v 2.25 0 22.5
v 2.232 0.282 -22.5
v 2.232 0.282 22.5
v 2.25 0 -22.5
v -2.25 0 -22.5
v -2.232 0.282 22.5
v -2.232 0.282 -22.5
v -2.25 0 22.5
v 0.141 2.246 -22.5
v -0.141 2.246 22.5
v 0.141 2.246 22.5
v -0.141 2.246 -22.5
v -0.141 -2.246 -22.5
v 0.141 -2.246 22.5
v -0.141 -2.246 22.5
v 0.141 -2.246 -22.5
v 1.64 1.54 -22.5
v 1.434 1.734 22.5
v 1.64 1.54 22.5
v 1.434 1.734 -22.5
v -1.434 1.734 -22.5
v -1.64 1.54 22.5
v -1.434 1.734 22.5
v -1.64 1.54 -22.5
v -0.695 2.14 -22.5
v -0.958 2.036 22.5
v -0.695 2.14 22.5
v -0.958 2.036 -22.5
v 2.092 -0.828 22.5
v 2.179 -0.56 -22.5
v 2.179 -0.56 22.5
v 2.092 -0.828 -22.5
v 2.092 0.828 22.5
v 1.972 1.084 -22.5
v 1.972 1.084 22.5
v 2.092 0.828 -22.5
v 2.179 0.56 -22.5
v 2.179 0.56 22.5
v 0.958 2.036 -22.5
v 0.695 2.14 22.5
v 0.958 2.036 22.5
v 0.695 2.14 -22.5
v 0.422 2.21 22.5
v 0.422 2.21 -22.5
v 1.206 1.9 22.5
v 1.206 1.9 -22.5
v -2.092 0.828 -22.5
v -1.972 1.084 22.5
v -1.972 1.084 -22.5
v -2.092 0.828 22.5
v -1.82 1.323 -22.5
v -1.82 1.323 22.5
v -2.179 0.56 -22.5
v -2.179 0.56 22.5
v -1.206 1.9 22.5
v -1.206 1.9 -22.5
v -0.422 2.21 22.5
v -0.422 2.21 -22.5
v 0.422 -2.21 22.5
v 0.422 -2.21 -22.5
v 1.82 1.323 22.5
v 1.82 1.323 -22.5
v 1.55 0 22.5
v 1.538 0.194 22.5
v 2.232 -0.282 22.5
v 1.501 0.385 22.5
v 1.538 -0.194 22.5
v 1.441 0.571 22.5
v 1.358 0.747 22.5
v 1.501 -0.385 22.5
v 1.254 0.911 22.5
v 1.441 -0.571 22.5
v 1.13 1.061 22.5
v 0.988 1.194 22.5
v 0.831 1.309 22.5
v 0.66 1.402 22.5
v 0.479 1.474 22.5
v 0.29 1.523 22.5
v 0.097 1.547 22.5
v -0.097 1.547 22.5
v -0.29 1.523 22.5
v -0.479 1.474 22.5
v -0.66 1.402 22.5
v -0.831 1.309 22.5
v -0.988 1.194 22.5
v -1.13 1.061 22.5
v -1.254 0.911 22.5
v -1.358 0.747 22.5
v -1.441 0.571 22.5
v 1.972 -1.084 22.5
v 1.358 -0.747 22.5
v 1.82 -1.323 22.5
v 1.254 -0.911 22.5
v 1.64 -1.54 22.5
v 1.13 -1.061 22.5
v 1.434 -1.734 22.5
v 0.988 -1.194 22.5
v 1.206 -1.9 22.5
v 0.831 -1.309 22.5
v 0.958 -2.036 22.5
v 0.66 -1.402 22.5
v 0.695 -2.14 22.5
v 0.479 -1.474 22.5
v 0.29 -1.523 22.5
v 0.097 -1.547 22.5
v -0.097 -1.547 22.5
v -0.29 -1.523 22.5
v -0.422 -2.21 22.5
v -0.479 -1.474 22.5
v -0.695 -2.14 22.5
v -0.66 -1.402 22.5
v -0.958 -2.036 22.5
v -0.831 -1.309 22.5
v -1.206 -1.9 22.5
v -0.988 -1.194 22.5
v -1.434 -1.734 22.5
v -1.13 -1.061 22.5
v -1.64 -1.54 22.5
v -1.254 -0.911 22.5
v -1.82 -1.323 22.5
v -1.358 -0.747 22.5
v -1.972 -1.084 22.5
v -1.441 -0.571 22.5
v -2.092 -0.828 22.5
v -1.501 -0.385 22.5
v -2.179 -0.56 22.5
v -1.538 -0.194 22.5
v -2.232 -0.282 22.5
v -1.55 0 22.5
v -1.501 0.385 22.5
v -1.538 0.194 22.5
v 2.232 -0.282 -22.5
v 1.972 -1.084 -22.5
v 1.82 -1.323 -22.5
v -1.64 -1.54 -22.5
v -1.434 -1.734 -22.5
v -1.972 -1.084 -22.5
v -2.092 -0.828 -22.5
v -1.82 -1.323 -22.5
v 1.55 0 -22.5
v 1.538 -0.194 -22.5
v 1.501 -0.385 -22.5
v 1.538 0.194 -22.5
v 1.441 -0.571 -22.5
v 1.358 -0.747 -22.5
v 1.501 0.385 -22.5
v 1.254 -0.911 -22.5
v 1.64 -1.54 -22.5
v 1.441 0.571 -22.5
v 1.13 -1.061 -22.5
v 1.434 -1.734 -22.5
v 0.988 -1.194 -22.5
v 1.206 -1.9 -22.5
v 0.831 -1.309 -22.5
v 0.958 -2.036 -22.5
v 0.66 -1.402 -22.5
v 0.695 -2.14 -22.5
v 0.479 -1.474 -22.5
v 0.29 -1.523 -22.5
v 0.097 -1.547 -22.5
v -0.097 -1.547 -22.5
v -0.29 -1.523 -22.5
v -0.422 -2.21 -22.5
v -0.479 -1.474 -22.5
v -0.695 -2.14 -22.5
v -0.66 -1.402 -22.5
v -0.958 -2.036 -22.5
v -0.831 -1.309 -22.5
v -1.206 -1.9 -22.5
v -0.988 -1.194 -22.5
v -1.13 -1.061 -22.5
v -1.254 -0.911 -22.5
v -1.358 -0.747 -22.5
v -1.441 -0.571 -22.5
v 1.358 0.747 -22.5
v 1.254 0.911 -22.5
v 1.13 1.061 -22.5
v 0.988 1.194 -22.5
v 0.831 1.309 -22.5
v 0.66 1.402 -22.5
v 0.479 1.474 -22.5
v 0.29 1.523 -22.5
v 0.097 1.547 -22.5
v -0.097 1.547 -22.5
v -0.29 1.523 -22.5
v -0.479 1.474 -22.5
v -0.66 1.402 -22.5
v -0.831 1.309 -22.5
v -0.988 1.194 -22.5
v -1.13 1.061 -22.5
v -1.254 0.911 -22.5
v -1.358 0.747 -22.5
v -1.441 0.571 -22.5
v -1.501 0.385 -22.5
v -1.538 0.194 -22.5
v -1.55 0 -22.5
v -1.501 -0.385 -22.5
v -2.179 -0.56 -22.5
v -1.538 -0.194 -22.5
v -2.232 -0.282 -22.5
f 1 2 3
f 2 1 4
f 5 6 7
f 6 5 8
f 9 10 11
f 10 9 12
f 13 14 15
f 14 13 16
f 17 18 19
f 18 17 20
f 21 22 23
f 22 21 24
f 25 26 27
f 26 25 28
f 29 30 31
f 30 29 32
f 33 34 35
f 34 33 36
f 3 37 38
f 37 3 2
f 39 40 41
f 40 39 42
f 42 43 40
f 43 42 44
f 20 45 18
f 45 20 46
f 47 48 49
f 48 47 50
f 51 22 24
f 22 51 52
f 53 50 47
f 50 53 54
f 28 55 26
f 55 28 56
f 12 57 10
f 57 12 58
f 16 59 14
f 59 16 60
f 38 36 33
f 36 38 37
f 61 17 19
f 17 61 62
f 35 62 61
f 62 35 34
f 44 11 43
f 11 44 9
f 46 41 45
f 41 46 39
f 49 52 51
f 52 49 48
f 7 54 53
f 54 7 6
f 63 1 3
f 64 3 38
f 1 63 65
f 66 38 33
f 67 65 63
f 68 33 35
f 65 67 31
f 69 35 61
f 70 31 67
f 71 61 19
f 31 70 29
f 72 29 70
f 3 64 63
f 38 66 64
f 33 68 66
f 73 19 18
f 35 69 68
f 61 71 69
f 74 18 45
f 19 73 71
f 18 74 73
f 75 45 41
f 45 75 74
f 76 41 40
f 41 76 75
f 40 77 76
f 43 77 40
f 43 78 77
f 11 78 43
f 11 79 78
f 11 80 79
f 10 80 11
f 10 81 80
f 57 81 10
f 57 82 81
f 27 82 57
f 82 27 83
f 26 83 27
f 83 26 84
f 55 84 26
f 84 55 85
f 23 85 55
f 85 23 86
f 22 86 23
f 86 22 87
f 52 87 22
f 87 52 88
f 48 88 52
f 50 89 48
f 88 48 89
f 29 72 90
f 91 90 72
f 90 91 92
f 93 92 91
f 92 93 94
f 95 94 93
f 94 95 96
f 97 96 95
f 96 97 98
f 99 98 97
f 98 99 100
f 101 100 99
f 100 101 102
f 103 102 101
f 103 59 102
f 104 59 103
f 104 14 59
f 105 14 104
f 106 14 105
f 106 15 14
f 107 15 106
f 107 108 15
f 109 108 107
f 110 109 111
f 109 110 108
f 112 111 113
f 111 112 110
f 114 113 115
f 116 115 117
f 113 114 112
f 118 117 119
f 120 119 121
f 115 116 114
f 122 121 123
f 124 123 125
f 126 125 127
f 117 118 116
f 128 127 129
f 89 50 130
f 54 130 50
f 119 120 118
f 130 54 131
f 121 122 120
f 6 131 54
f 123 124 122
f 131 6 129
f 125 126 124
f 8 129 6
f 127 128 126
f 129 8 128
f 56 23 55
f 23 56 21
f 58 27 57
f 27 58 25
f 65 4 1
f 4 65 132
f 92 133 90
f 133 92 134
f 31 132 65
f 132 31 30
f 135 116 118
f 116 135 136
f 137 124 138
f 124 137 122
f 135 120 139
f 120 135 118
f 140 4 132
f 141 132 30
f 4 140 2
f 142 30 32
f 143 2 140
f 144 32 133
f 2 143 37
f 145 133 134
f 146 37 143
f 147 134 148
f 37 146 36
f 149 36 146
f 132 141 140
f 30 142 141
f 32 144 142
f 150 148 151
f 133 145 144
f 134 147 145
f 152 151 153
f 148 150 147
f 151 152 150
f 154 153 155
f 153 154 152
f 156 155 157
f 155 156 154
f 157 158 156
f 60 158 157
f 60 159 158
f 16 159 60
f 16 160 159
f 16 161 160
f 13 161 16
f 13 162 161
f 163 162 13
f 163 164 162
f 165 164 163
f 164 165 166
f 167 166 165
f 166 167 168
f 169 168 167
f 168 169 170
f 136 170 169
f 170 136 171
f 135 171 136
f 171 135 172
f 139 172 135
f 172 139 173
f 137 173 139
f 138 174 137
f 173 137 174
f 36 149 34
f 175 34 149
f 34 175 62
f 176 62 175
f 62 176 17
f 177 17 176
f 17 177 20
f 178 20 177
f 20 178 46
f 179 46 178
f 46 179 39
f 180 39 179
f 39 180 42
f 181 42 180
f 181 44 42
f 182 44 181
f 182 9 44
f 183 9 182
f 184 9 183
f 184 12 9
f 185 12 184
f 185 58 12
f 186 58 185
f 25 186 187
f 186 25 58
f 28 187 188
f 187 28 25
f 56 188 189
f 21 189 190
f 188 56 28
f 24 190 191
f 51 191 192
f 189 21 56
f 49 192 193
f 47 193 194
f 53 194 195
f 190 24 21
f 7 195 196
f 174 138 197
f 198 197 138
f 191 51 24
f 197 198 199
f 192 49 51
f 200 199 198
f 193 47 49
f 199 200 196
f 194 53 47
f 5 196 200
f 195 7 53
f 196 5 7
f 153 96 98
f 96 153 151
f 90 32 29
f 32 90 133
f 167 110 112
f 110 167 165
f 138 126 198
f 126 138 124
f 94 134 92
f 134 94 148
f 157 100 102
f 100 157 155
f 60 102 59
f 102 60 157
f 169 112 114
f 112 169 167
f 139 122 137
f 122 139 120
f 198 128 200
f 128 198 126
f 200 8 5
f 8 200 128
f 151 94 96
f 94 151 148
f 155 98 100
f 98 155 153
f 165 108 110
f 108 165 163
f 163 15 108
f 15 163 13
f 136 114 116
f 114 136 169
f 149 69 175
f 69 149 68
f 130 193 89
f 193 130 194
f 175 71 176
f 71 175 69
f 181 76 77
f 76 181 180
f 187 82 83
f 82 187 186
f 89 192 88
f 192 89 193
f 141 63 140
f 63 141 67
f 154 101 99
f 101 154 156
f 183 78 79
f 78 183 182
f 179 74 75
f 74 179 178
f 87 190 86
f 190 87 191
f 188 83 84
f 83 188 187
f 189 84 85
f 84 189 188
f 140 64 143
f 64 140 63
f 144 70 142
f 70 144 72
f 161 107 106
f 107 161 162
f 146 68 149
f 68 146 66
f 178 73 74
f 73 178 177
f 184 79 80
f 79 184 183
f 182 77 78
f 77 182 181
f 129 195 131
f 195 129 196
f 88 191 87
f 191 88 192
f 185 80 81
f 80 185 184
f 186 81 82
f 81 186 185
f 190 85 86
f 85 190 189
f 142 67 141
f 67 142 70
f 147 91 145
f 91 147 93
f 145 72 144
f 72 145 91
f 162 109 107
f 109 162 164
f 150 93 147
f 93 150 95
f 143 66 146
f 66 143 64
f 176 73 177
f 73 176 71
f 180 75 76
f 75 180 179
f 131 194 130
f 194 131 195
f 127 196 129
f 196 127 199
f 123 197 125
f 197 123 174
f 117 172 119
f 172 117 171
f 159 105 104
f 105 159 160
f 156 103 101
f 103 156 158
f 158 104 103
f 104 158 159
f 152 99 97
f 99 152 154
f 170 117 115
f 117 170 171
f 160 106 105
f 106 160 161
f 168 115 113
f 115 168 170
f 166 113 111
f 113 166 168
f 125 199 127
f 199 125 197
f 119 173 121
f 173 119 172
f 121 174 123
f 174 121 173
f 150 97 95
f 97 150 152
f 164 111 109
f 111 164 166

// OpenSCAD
$fn = 50;


difference() {
	union() {
		translate(v = [0, 0, -22.5000000000]) {
			cylinder(h = 45, r = 2.2500000000);
		}
	}
	union() {
		translate(v = [0, 0, -100.0000000000]) {
			cylinder(h = 200, r = 1.5500000000);
		}
	}
}
